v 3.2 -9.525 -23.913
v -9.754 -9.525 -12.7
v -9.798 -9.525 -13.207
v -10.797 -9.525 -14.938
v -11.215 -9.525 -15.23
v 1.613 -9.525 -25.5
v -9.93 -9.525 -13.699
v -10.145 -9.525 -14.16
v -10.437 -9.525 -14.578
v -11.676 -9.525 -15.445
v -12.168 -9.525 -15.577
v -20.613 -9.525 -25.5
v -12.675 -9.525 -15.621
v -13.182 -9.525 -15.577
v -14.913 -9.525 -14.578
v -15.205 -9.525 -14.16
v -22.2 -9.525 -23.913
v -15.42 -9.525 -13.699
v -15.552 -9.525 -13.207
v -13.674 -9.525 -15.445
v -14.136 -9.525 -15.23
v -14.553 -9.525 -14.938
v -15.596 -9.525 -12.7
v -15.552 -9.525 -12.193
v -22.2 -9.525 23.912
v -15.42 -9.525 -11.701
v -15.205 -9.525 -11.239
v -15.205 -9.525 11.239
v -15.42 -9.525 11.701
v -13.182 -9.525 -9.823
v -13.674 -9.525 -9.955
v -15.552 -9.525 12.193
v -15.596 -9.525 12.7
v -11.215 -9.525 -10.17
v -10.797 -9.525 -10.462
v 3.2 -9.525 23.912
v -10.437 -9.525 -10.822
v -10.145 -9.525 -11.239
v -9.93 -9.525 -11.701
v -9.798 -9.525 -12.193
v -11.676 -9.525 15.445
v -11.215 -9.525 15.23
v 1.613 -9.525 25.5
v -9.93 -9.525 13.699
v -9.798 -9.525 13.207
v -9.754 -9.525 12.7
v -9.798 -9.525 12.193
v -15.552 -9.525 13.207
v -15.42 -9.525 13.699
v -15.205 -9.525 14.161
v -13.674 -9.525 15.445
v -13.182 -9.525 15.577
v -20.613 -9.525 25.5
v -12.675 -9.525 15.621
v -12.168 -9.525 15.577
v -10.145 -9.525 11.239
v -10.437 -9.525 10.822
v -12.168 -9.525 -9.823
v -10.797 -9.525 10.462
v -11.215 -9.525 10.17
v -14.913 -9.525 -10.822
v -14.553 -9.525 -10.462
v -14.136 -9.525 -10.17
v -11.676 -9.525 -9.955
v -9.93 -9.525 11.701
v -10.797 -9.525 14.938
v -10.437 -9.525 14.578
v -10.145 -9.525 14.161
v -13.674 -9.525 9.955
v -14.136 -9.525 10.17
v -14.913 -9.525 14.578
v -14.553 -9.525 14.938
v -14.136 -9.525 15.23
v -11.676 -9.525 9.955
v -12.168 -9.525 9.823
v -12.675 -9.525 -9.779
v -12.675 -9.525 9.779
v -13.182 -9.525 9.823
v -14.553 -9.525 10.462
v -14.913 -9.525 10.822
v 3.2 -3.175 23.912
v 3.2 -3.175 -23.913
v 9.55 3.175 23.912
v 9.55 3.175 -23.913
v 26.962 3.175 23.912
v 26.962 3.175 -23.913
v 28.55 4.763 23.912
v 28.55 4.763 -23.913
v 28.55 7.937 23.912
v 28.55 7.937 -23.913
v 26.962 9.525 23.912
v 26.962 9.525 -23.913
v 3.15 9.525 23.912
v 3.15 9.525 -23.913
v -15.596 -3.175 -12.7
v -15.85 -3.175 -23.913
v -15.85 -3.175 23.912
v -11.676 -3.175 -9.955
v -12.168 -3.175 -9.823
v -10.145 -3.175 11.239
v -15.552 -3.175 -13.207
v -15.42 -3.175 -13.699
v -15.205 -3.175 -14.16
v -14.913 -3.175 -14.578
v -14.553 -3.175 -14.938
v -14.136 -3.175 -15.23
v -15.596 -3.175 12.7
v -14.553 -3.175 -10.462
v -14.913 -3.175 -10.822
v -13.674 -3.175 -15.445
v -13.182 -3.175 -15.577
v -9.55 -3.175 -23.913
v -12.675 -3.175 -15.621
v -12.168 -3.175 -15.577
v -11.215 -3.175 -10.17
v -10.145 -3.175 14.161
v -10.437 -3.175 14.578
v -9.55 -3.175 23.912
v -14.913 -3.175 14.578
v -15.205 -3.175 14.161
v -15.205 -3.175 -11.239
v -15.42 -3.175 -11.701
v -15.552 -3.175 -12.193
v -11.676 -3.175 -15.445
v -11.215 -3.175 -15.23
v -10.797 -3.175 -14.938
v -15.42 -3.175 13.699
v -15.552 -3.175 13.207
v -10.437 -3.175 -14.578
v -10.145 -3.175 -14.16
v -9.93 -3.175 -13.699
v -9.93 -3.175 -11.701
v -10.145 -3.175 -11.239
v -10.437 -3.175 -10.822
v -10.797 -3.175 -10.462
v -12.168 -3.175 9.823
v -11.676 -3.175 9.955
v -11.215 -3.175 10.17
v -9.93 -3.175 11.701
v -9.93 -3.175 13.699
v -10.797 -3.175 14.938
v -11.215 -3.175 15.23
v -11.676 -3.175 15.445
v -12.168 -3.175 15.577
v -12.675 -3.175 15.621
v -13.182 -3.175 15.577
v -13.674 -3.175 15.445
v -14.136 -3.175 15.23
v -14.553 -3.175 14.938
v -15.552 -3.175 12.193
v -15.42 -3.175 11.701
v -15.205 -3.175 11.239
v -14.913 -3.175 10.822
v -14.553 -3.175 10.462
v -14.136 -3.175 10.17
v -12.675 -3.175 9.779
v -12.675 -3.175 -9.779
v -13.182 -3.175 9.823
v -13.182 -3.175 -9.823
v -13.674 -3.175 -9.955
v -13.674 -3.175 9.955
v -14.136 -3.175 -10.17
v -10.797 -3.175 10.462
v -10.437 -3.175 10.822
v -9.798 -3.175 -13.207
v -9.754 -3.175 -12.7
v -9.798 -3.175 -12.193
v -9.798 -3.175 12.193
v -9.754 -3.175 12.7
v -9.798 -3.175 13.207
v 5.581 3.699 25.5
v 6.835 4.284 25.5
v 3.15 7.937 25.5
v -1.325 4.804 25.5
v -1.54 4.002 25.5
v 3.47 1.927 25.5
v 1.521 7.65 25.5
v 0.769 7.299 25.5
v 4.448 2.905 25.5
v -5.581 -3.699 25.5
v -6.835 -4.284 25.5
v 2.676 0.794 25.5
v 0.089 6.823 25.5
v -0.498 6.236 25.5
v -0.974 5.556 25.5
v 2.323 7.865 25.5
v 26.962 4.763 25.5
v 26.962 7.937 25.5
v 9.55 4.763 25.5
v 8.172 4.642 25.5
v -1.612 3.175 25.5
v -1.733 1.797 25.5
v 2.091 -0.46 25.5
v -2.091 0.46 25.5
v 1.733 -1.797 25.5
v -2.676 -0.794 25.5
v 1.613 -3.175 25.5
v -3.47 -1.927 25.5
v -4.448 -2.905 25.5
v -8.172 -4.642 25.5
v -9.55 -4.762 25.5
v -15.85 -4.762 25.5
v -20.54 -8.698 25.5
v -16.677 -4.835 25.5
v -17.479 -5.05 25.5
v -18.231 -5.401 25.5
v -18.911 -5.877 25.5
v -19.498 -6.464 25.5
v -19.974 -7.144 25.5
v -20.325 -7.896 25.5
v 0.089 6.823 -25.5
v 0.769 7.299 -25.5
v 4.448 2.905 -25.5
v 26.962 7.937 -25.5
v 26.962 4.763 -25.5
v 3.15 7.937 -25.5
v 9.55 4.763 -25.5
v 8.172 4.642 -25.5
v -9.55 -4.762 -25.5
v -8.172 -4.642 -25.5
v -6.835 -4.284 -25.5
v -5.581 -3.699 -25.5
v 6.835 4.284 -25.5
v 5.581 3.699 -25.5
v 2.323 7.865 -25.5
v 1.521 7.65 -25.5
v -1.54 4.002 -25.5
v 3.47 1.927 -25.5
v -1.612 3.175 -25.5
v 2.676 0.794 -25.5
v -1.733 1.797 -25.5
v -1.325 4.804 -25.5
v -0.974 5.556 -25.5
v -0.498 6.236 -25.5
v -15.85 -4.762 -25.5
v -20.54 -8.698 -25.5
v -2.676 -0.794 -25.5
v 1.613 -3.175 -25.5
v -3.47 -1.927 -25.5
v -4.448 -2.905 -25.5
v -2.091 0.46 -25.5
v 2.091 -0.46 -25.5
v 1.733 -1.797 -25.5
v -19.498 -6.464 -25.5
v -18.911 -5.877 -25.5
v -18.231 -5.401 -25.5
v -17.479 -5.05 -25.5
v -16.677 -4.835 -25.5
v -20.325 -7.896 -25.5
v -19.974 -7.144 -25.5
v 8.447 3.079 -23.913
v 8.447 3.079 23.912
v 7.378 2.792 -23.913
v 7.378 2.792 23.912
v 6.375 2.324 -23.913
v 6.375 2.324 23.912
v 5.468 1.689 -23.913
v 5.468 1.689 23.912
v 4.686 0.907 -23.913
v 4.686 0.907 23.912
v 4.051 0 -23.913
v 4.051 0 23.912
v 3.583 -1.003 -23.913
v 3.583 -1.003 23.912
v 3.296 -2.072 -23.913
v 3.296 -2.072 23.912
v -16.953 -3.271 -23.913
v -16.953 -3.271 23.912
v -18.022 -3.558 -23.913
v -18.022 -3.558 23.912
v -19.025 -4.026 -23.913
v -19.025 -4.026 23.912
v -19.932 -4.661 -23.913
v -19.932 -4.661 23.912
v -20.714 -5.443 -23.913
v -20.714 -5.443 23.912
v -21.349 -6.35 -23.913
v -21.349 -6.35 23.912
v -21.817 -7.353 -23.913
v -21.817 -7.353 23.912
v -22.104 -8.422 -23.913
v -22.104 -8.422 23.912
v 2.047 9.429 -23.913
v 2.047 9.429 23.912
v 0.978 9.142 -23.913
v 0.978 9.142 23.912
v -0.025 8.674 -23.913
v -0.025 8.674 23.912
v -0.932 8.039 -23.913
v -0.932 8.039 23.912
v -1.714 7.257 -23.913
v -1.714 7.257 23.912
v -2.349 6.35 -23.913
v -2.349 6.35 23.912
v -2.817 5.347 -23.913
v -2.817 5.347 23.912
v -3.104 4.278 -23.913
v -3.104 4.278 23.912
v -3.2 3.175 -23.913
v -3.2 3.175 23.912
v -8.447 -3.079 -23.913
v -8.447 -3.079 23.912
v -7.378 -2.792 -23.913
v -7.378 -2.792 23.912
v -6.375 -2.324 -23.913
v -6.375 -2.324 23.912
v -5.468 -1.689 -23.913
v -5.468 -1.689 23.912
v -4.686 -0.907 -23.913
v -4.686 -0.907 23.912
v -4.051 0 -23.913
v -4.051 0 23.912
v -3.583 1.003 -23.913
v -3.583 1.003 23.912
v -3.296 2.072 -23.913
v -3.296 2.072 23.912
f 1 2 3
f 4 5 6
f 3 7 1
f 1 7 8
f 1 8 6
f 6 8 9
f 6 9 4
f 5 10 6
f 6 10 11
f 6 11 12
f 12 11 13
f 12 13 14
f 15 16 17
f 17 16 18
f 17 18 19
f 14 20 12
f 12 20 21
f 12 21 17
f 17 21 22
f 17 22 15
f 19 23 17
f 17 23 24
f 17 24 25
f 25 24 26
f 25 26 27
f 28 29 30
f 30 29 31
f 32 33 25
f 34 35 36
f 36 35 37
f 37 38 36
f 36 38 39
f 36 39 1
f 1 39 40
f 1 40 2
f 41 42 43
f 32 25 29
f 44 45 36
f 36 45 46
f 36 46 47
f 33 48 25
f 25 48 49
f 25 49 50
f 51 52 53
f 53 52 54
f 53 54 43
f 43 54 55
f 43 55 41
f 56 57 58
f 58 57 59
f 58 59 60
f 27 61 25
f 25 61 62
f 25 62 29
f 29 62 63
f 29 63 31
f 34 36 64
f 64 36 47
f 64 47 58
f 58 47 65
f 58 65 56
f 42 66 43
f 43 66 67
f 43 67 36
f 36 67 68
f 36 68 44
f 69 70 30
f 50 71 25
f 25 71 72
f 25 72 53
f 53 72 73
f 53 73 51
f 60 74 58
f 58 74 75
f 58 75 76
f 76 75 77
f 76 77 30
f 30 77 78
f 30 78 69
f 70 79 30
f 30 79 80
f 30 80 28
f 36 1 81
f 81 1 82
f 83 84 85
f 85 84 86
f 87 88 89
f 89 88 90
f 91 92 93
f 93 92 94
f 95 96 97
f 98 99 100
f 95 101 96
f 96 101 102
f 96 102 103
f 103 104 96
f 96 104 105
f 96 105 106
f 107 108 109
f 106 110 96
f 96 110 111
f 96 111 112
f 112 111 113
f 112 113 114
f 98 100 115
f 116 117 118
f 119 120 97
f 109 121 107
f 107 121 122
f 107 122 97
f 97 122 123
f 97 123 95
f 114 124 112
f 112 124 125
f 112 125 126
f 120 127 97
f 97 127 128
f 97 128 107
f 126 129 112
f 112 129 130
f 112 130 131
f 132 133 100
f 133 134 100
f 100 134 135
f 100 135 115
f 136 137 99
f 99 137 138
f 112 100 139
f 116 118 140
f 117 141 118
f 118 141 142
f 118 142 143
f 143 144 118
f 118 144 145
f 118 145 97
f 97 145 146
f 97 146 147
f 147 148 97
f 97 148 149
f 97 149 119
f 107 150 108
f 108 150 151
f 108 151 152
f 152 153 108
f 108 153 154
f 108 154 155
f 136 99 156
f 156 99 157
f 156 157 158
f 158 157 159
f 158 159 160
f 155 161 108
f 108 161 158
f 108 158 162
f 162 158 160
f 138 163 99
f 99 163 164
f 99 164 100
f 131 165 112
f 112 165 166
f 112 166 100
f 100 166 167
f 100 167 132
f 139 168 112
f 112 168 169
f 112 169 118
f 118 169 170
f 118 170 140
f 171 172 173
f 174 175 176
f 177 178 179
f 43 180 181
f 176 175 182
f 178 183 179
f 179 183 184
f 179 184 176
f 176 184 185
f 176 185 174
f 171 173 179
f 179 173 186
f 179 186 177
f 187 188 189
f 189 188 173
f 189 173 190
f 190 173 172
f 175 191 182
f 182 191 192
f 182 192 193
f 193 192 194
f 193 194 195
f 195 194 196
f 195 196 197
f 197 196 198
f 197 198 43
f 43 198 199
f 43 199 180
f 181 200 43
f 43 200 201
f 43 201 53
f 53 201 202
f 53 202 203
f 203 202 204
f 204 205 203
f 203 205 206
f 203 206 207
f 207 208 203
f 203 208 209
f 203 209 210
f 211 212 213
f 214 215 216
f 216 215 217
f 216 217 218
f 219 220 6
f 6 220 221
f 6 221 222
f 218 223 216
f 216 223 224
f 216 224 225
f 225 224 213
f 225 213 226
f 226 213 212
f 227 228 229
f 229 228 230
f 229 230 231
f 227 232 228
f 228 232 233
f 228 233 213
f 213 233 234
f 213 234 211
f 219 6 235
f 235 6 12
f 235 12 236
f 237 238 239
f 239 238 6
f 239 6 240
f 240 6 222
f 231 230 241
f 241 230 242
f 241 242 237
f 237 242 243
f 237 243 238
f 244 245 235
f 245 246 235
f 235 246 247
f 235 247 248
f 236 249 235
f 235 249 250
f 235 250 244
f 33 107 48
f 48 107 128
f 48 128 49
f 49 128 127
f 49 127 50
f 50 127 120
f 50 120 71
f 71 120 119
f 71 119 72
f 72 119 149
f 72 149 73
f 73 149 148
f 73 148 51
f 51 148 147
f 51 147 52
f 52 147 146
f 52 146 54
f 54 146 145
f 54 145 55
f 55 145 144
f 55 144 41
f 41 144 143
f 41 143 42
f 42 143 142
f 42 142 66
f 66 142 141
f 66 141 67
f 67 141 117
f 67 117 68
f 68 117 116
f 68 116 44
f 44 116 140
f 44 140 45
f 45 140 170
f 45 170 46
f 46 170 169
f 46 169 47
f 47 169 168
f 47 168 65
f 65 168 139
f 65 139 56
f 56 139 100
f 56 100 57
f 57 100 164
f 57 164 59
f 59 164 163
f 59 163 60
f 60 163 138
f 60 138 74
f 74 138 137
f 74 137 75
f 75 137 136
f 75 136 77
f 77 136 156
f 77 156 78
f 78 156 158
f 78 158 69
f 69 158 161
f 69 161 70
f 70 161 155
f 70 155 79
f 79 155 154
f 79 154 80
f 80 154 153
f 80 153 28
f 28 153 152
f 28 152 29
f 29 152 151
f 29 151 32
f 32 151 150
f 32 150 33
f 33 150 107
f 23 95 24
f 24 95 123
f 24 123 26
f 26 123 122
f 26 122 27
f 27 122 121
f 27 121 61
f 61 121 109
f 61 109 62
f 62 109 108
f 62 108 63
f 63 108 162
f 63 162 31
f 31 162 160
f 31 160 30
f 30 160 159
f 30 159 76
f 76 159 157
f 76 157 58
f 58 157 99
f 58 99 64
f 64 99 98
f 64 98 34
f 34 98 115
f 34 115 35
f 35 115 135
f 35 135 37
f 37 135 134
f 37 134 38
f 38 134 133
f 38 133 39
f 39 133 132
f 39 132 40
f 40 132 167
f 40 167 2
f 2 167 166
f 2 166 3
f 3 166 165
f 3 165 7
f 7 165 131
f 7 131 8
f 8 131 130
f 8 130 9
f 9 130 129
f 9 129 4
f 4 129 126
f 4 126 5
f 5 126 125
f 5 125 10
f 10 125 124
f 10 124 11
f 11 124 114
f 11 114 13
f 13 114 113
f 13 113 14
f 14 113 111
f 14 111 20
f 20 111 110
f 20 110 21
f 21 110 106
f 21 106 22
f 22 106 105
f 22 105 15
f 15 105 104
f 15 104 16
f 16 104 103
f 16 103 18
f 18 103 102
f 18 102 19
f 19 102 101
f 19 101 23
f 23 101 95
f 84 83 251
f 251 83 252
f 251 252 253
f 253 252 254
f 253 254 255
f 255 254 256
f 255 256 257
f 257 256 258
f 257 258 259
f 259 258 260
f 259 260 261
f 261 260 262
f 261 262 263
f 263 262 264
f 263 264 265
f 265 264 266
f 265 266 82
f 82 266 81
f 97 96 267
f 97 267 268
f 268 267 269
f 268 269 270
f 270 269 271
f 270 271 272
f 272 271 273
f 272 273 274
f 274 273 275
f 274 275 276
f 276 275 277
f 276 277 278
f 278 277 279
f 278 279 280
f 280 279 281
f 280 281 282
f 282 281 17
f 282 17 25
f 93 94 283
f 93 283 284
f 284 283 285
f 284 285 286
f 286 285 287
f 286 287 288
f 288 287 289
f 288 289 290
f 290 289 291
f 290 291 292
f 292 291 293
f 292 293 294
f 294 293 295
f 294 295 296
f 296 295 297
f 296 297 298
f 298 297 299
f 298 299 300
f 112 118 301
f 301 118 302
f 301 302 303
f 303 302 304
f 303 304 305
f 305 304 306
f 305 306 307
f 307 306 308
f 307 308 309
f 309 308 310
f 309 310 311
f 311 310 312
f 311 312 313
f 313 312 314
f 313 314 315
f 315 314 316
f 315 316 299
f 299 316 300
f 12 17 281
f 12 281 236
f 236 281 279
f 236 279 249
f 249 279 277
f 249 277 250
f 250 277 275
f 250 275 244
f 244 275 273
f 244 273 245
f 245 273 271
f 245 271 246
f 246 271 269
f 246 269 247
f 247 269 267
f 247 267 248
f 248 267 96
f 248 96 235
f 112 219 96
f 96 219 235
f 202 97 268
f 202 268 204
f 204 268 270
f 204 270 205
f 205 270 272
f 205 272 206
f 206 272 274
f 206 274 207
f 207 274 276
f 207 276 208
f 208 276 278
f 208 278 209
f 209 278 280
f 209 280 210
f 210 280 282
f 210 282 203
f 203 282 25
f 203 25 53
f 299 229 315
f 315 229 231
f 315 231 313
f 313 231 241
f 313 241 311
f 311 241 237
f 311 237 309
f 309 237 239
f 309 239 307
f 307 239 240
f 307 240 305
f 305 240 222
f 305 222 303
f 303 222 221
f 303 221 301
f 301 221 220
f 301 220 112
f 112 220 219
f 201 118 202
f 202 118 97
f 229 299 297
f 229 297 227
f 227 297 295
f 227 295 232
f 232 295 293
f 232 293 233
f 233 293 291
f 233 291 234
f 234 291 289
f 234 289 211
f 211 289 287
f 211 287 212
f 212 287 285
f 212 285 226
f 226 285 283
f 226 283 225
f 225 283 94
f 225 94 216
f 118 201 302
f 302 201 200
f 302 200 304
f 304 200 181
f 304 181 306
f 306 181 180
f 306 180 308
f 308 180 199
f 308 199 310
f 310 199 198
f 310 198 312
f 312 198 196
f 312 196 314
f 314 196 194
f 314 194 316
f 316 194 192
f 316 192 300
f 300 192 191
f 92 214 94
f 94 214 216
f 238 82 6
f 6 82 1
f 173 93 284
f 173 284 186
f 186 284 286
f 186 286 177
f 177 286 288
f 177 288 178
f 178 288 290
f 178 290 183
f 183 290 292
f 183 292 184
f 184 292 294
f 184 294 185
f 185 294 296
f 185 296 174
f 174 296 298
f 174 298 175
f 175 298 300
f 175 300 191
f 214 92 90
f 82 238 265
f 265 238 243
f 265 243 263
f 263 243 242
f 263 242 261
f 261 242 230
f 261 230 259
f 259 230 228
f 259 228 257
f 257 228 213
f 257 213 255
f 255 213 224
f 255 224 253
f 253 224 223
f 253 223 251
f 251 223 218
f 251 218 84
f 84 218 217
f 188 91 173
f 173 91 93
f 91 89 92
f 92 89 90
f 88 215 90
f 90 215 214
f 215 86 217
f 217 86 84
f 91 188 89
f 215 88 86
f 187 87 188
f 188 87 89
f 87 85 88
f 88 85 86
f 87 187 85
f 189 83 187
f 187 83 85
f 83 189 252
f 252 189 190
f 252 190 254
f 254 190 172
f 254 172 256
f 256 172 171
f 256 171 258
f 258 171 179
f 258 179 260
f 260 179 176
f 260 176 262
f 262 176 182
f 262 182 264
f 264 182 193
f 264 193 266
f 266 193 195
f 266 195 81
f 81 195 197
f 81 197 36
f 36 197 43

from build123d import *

# Parameters (mm, degrees)
BOSS_EXTRUDE1_DEPTH = 25.5
SKETCH3_R           = 2.921
CUT_EXTRUDE1_DEPTH  = 41.331656301
FILLET1_START       = -25.5
FILLET1_DEPTH       = 51
FILLET1_2_DEPTH     = 51
CHAMFER1_SIZE       = 1.5875


with BuildPart() as part:
    # Sketch1 → Boss-Extrude1 (new, symmetric)
    with BuildSketch(Plane.XY):
        Polygon((-22.2, -9.525), (3.2, -9.525), (3.2, 3.175), (28.55, 3.175), (28.55, 9.525), (-3.2, 9.525), (-3.2, -3.175), (-22.2, -3.175), align=None)
    extrude(amount=BOSS_EXTRUDE1_DEPTH, both=True)

    # Sketch3 → Cut-Extrude1 (cut, through all)
    with BuildSketch(Plane(origin=(0, -3.175, 0), x_dir=(1, 0, 0), z_dir=(0, 1, 0))):
        with Locations(Location((-12.675, -12.7, 0), (0, 0, 180))):
            Circle(SKETCH3_R)
    cut_extrude1 = extrude(amount=-CUT_EXTRUDE1_DEPTH, mode=Mode.SUBTRACT)

    # Mirror1: Cut-Extrude1 across plane
    add(cut_extrude1.mirror(Plane.XY), mode=Mode.SUBTRACT)

    # Fillet1: read off the stored shape, not the designer's step
    # Fillet1 outline → Fillet1 (cut)
    with BuildSketch(Plane.XY.offset(FILLET1_START)):
        with BuildLine():
            Line((-22.2, -3.175), (-22.2, -9.525))
            ThreePointArc((-22.2, -9.525), (-20.340128061, -5.034871939), (-15.85, -3.175))
            Line((-15.85, -3.175), (-22.2, -3.175))
        make_face()
        with BuildLine():
            Line((-3.2, 9.525), (-3.2, 3.175))
            ThreePointArc((-3.2, 3.175), (-1.340128061, 7.665128061), (3.15, 9.525))
            Line((3.15, 9.525), (-3.2, 9.525))
        make_face()
    extrude(amount=FILLET1_DEPTH, mode=Mode.SUBTRACT)

    # Fillet1 2 outline → Fillet1 2 (add)
    with BuildSketch(Plane.XY.offset(FILLET1_START)):
        with BuildLine():
            ThreePointArc((3.2, -3.175), (5.059871939, 1.315128061), (9.55, 3.175))
            Line((9.55, 3.175), (3.2, 3.175))
            Line((3.2, 3.175), (3.2, -3.175))
        make_face()
        with BuildLine():
            ThreePointArc((-3.2, 3.175), (-5.059871939, -1.315128061), (-9.55, -3.175))
            Line((-9.55, -3.175), (-3.2, -3.175))
            Line((-3.2, -3.175), (-3.2, 3.175))
        make_face()
    extrude(amount=FILLET1_2_DEPTH)

    # Chamfer1
    chamfer1_edges = [part.edges().sort_by_distance(p)[0] for p in [
        (3.2, -6.35, -25.5),
        (3.2, -6.35, 25.5),
        (28.55, 9.525, 0),
        (28.55, 3.175, 0),
        (28.55, 6.35, 25.5),
        (15.85, 9.525, 25.5),
        (19.05, 3.175, -25.5),
        (19.05, 3.175, 25.5),
        (-12.7, -3.175, -25.5),
        (-1.340128061, 7.665128061, -25.5),
        (-20.340128061, -5.034871939, -25.5),
        (-12.7, -3.175, 25.5),
        (-1.340128061, 7.665128061, 25.5),
        (-20.340128061, -5.034871939, 25.5),
        (5.059871939, 1.315128061, -25.5),
        (5.059871939, 1.315128061, 25.5),
        (-5.059871939, -1.315128061, -25.5),
        (-5.059871939, -1.315128061, 25.5),
        (15.85, 9.525, -25.5),
        (28.55, 6.35, -25.5),
    ]]
    chamfer(chamfer1_edges, length=CHAMFER1_SIZE)


solid = part.part
